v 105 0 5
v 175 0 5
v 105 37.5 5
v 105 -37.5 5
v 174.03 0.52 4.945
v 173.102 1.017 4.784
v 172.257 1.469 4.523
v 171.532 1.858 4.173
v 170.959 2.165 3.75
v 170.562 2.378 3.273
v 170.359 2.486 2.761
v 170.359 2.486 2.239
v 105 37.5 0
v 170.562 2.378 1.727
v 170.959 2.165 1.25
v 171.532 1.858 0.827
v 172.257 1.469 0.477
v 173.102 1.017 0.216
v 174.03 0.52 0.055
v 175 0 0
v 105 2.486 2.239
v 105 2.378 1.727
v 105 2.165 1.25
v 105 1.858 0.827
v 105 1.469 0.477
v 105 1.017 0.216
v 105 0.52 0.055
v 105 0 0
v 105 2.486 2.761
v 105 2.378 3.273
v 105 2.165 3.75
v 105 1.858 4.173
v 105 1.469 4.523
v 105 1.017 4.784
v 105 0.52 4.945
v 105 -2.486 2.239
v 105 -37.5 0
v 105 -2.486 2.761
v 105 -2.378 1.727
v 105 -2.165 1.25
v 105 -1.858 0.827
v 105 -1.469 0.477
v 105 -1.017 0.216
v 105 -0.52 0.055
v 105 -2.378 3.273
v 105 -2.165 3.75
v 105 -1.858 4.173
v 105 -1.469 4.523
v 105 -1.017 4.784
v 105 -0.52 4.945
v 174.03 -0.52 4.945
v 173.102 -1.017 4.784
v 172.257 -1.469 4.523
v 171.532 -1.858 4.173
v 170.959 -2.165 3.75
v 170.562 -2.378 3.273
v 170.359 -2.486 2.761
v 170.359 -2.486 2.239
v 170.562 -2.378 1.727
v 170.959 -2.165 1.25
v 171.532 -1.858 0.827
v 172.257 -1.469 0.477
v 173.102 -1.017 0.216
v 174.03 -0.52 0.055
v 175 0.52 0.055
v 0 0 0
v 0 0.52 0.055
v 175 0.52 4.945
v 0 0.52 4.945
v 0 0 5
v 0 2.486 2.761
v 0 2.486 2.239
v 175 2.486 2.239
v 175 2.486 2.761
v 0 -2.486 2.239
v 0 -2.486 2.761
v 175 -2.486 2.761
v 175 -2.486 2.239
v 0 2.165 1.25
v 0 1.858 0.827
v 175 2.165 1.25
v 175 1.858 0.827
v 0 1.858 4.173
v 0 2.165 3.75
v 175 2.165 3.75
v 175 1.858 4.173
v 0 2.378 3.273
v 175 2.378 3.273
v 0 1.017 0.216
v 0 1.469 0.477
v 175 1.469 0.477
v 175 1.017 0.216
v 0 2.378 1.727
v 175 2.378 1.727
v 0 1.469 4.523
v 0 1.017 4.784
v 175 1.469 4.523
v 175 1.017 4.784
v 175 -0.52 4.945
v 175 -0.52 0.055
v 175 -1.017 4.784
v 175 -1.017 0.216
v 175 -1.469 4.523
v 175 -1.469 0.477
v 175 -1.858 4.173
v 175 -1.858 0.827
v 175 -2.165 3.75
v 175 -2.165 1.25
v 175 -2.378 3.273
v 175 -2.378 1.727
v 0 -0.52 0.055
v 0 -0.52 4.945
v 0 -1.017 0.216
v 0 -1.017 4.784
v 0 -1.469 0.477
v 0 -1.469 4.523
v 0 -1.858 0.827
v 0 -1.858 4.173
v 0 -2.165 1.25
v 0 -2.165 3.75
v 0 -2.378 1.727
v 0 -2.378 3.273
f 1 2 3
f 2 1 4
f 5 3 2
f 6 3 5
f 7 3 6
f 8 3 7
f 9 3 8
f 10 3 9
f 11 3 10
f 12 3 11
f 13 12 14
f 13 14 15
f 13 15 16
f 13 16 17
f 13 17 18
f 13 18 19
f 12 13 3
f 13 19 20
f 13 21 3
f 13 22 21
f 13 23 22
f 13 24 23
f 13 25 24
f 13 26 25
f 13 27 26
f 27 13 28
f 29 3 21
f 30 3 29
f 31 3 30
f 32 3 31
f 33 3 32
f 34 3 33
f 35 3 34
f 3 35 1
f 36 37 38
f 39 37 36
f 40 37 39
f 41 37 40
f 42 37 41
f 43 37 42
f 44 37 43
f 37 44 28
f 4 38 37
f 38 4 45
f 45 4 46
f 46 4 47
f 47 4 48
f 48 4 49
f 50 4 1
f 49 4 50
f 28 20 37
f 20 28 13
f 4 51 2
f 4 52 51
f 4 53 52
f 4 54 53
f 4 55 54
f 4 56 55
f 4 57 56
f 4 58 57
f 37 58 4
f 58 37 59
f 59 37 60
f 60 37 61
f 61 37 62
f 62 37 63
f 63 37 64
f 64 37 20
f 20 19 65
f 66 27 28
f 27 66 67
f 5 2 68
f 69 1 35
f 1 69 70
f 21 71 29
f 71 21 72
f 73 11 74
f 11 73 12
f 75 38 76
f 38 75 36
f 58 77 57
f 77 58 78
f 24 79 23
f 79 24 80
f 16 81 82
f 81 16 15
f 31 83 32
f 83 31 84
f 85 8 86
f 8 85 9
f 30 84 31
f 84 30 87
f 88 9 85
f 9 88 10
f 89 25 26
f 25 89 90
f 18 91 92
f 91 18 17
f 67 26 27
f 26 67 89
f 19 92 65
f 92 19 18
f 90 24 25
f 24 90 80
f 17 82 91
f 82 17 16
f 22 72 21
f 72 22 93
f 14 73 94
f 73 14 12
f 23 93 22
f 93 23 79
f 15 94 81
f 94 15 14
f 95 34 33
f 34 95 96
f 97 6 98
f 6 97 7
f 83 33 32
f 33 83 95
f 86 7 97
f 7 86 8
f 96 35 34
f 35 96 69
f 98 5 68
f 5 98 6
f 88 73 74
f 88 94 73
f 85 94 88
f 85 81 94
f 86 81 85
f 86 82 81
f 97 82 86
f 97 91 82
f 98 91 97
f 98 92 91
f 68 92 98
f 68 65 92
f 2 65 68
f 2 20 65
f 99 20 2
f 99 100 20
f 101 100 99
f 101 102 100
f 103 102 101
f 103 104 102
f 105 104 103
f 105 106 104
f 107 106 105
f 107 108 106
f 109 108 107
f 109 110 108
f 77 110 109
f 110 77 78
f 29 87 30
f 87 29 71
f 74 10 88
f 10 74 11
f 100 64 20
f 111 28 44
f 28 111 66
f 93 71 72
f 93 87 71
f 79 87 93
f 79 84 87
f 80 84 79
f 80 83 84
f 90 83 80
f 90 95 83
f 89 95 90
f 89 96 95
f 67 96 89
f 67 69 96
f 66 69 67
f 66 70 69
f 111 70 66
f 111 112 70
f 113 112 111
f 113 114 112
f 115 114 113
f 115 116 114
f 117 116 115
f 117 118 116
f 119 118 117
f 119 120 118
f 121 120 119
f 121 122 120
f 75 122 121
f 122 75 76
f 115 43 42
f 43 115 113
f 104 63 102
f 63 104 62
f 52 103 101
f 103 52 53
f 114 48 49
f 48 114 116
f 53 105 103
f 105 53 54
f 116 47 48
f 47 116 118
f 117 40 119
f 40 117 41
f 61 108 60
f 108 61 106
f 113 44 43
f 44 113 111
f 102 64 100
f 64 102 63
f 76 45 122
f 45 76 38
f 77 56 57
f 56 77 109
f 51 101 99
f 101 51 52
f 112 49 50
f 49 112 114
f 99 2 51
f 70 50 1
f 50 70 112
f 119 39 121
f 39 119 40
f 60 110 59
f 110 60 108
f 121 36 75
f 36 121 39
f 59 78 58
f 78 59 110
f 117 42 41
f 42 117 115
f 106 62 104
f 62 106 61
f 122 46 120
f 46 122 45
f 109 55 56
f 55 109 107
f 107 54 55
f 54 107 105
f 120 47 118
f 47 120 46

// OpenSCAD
podstavaPrum = 75;
podstavaVyska= 25;
vyska = 70+80+25;//neuvedeno
tyckaPrum = 5;//neuvedeno
trojuhelnikSirka = podstavaPrum/2; //uvedeno, ze je to mensi nrz prumer
trojuhelnikVyska = 70; //Snad to odpovída
trojuhelnikHloubka = 5;//neuvedeno



  module prism(l, w, h){
      polyhedron(//pt 0        1        2        3        4        5
              points=[[0,0,0], [l,0,0], [l,w,0], [0,w,0], [0,w,h], [l,w,h]],
              faces=[[0,1,2,3],[5,4,3,2],[0,4,5,1],[0,3,4],[5,2,1]]);
      }
      
      
module znacka(Zvyska, ZtyckaPrum ,ZtrojuhelnikSirka,ZtrojuhelnikVyska, ZtrojuhelnikHloubka){
cylinder(h=Zvyska, d = ZtyckaPrum ,$fn=30);
      
translate([-ZtrojuhelnikHloubka/2,0,Zvyska ]) rotate([-90,0,0])
      {
prism(ZtrojuhelnikHloubka, ZtrojuhelnikVyska,ZtrojuhelnikSirka);
mirror([0,0,1]) prism(ZtrojuhelnikHloubka, ZtrojuhelnikVyska,ZtrojuhelnikSirka);
      }
  }
  
  
  module znackaSPodstavou(ZpodstavaPrum,ZpodstavaVyska,Zvyska, ZtyckaPrum ,ZtrojuhelnikSirka,ZtrojuhelnikVyska, ZtrojuhelnikHloubka){
cylinder(h=ZpodstavaVyska, d = ZpodstavaPrum ,$fn=50);
znacka (Zvyska, ZtyckaPrum ,ZtrojuhelnikSirka,ZtrojuhelnikVyska, ZtrojuhelnikHloubka);
      
  }
 
//znackaSPodstavou(podstavaPrum,podstavaVyska,vyska, tyckaPrum ,trojuhelnikSirka,trojuhelnikVyska, trojuhelnikHloubka);
  
  
translate([0,0,max(tyckaPrum,trojuhelnikHloubka)/2])rotate([0,90,0]) znacka(vyska, tyckaPrum ,trojuhelnikSirka,trojuhelnikVyska, trojuhelnikHloubka);
